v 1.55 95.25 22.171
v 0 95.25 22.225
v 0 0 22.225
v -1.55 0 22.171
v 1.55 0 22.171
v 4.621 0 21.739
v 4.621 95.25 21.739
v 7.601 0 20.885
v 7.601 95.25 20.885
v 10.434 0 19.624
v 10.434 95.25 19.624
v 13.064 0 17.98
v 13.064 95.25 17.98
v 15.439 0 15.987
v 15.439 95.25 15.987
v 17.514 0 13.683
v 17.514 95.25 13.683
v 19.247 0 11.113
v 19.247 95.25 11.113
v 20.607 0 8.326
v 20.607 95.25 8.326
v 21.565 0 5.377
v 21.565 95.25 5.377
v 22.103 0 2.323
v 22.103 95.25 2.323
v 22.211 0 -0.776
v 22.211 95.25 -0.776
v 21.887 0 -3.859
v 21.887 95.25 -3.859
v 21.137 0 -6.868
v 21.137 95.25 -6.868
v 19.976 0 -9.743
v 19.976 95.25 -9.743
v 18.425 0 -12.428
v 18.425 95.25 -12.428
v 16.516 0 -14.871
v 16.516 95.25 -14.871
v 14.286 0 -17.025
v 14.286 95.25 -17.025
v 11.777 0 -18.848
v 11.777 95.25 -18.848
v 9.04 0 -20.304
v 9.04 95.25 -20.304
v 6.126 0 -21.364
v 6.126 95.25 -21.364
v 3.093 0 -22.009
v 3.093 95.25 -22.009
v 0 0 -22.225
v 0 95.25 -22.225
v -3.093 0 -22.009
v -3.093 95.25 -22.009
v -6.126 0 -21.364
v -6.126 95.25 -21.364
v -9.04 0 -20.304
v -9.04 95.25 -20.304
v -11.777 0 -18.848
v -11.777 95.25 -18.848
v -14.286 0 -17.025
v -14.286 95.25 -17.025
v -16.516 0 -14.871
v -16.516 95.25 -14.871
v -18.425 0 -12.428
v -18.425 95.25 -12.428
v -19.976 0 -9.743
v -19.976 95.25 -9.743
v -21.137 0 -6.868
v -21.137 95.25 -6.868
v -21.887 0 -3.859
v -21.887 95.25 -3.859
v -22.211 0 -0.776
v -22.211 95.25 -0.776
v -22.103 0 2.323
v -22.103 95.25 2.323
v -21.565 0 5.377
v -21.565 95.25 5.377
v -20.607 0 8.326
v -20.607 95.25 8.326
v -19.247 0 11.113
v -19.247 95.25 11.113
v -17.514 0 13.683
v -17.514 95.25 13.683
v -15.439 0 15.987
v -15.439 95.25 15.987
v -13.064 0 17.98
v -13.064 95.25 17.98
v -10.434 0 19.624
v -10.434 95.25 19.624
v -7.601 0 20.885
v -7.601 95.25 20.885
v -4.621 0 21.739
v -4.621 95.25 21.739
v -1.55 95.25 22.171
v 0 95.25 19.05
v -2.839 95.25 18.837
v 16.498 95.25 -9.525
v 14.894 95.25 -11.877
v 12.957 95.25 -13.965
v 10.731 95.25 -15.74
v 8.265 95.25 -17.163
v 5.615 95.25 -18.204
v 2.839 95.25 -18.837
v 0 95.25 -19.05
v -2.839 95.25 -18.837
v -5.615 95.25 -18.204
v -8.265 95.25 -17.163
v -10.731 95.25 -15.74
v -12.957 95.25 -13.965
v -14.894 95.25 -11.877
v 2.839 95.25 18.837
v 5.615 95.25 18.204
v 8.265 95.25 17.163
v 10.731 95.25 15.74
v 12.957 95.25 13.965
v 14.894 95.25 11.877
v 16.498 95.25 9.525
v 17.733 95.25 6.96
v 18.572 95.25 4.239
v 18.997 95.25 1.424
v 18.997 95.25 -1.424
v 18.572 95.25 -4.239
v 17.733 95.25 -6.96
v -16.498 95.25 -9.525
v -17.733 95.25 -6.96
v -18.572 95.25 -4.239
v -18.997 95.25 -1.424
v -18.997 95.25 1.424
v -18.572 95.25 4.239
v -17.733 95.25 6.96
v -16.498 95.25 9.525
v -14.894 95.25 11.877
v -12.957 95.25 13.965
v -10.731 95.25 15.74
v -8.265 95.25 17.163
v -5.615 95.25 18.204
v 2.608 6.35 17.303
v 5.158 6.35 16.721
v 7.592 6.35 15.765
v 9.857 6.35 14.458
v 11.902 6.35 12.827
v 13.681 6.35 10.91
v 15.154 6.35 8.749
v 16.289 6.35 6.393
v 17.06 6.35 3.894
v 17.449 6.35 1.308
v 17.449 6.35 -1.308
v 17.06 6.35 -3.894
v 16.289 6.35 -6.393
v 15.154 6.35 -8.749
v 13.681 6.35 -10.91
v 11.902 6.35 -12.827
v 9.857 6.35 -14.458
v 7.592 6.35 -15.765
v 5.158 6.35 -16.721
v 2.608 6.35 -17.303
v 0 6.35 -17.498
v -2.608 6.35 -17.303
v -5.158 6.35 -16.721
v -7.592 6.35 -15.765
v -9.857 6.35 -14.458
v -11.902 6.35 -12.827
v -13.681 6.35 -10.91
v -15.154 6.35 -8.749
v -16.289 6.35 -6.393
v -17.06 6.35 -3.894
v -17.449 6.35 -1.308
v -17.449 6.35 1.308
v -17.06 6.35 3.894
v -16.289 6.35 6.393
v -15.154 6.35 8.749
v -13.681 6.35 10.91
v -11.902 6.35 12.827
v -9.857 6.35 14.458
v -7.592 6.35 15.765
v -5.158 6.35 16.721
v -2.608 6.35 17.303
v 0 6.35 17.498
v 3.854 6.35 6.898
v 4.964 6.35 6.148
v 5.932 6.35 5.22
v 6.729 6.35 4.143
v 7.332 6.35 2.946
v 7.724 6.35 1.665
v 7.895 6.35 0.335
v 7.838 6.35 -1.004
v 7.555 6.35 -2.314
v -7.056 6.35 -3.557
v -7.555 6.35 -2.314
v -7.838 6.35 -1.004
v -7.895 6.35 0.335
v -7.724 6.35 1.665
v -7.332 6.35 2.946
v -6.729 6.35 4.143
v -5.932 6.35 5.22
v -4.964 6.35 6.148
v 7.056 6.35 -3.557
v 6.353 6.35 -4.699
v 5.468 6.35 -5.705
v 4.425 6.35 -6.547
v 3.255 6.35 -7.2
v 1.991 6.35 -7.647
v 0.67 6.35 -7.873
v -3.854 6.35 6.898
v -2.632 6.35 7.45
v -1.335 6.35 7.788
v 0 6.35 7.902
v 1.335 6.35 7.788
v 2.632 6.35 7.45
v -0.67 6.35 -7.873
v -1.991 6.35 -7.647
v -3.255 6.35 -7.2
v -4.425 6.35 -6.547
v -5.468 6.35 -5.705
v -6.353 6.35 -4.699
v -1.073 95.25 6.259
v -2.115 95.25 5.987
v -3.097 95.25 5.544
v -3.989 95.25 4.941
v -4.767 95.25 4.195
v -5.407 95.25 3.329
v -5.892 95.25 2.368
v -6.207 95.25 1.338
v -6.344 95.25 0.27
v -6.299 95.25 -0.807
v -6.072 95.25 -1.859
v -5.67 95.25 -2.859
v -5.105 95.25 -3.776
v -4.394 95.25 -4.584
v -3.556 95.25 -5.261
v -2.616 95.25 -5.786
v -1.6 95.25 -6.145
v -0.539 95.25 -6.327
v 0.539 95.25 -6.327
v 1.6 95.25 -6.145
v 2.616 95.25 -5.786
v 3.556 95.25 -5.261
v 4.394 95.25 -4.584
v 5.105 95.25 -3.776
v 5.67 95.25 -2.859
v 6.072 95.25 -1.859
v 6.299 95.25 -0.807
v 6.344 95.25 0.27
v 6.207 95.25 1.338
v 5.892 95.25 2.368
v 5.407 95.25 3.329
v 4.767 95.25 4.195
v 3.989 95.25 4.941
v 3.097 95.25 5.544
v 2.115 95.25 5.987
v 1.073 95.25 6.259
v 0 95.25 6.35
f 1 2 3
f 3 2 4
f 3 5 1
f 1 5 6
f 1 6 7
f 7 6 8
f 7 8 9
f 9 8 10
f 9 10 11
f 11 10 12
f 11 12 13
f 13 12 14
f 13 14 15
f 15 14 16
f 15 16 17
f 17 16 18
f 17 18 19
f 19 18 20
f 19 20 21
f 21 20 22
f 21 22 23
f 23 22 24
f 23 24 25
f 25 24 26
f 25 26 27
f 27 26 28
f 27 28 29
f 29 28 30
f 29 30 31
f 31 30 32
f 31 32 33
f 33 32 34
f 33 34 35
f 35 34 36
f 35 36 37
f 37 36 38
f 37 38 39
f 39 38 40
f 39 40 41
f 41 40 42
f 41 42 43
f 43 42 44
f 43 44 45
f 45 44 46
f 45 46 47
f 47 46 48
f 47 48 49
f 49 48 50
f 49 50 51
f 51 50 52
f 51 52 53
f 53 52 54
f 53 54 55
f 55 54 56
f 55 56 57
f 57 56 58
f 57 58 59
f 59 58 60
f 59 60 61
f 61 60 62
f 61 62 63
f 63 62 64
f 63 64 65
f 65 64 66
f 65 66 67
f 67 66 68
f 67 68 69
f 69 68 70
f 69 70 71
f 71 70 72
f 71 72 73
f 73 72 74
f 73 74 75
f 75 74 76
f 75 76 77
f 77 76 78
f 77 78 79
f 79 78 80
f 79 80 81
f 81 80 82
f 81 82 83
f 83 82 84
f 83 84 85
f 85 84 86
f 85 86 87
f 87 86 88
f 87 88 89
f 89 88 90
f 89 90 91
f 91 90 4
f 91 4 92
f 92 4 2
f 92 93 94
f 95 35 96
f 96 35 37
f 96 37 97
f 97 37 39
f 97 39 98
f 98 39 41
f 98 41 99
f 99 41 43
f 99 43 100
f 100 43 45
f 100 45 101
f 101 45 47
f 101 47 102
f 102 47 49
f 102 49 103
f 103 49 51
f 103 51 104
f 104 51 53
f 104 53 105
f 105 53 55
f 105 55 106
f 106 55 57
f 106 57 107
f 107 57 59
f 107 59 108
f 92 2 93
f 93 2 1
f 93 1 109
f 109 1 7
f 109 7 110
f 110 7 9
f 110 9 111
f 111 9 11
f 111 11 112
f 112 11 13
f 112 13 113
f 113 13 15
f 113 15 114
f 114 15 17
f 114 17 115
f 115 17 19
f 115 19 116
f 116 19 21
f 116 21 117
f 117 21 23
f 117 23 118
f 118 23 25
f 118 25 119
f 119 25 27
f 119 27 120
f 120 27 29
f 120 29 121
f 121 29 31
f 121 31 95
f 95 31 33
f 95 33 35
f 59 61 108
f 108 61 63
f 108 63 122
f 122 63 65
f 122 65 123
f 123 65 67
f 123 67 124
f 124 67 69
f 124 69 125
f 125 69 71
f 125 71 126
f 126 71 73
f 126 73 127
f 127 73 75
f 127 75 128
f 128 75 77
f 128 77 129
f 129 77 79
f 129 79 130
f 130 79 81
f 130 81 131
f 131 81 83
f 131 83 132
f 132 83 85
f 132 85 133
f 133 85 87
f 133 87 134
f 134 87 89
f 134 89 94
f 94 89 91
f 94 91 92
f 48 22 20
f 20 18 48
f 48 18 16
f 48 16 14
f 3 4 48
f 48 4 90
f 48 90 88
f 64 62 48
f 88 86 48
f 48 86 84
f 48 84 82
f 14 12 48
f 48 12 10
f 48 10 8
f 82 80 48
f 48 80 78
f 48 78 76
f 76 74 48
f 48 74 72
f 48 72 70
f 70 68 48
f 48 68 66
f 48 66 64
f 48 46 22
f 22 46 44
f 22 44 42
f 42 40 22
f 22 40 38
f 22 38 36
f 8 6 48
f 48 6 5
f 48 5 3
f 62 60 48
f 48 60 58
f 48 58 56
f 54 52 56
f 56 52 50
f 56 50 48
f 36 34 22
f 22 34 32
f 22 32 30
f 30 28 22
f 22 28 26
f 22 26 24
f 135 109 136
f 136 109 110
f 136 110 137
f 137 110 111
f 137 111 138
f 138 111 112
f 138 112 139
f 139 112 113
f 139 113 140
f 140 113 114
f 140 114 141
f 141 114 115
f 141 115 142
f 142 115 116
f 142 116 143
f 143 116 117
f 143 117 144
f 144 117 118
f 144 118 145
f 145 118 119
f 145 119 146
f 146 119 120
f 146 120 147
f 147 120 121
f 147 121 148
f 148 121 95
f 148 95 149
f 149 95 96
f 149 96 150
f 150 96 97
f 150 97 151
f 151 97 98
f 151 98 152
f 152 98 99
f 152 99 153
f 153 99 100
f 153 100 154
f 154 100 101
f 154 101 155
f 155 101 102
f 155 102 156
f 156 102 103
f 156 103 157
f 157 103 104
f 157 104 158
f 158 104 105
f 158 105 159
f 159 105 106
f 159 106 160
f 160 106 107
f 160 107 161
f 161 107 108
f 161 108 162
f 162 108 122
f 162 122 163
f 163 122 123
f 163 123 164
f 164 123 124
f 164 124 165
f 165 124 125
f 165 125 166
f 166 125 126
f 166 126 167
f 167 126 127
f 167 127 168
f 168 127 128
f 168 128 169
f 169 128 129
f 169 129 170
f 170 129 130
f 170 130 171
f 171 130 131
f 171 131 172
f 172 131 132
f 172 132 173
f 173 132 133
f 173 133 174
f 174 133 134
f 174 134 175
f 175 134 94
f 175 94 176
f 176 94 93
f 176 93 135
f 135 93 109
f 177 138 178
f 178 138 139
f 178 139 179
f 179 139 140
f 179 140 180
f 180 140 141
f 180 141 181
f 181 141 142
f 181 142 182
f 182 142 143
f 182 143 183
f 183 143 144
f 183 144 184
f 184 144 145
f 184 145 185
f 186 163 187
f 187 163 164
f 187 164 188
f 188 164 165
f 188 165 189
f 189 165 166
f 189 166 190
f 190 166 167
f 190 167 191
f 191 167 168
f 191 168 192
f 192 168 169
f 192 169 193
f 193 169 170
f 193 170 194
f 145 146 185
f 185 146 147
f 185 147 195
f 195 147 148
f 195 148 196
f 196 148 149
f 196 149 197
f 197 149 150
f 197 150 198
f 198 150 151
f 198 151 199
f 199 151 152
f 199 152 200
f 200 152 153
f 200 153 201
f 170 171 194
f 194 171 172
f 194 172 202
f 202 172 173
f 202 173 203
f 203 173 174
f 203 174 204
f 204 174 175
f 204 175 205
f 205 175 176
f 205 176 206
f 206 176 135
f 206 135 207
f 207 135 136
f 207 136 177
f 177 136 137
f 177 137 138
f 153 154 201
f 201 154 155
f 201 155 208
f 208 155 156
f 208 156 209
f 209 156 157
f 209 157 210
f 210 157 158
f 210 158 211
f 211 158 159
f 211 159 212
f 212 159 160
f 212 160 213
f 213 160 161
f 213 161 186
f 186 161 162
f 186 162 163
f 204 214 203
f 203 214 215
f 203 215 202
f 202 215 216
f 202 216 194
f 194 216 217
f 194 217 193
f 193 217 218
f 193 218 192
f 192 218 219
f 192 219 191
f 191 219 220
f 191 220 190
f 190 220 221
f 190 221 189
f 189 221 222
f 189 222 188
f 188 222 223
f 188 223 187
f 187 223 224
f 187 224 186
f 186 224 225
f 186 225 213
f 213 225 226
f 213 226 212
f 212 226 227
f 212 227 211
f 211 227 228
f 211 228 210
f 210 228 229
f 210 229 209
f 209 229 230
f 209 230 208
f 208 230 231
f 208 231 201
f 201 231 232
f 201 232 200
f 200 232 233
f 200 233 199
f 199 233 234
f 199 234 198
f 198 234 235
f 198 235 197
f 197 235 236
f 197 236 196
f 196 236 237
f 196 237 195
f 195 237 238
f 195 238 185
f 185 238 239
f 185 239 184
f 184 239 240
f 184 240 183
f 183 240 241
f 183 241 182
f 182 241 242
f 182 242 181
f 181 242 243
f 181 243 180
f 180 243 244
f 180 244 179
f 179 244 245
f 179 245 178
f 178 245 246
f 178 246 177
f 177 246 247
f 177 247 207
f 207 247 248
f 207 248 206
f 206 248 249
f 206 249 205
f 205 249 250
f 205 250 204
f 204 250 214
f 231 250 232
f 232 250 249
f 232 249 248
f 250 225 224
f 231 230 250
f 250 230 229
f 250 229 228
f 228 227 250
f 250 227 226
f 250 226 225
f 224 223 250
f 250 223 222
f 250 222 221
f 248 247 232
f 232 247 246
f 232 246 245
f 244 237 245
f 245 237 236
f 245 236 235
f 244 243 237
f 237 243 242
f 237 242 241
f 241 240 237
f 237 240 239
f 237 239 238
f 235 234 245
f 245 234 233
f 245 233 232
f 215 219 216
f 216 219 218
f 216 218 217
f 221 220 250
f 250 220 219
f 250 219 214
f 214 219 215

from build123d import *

# Parameters (mm, degrees)
SKETCH1_R           = 22.225
BOSS_EXTRUDE1_DEPTH = 95.25
SKETCH6_R           = 19.05
SKETCH6_R_2         = 6.35
CUT_EXTRUDE1_DEPTH  = 88.9
CUT_EXTRUDE1_DRAFT  = -1


with BuildPart() as part:
    # Sketch1 → Boss-Extrude1 (new body)
    with BuildSketch(Plane(origin=(0, 0, 0), x_dir=(1, 0, 0), z_dir=(0, 1, 0))):
        with Locations(Location((0, 0, 0), (0, 0, 270))):
            Circle(SKETCH1_R)
    extrude(amount=BOSS_EXTRUDE1_DEPTH)


with BuildPart() as cut_extrude1_tool:
    # Sketch6 → Cut-Extrude1 (with draft: the straight prism first)
    with BuildSketch(Plane(origin=(0, 95.25, 0), x_dir=(1, 0, 0), z_dir=(0, 1, 0))):
        Circle(SKETCH6_R)
        Circle(SKETCH6_R_2, mode=Mode.SUBTRACT)
    extrude(amount=-CUT_EXTRUDE1_DEPTH)
    # Cut-Extrude1: the draft: its side faces are tilted about the plane it starts from
    cut_extrude1_sides = [cut_extrude1_tool.faces().sort_by_distance(p)[0] for p in [
        (-19.05, 50.8, 0),
        (-6.35, 50.8, 0),
    ]]
    draft(cut_extrude1_sides, Plane(origin=(0, 95.25, 0), x_dir=(1, 0, 0), z_dir=(0, 1, 0)), CUT_EXTRUDE1_DRAFT)


with BuildPart() as part_1:
    add(part.part)

    # Cut-Extrude1: cut by cut_extrude1_tool
    add(cut_extrude1_tool.part, mode=Mode.SUBTRACT)


solid = part_1.part
